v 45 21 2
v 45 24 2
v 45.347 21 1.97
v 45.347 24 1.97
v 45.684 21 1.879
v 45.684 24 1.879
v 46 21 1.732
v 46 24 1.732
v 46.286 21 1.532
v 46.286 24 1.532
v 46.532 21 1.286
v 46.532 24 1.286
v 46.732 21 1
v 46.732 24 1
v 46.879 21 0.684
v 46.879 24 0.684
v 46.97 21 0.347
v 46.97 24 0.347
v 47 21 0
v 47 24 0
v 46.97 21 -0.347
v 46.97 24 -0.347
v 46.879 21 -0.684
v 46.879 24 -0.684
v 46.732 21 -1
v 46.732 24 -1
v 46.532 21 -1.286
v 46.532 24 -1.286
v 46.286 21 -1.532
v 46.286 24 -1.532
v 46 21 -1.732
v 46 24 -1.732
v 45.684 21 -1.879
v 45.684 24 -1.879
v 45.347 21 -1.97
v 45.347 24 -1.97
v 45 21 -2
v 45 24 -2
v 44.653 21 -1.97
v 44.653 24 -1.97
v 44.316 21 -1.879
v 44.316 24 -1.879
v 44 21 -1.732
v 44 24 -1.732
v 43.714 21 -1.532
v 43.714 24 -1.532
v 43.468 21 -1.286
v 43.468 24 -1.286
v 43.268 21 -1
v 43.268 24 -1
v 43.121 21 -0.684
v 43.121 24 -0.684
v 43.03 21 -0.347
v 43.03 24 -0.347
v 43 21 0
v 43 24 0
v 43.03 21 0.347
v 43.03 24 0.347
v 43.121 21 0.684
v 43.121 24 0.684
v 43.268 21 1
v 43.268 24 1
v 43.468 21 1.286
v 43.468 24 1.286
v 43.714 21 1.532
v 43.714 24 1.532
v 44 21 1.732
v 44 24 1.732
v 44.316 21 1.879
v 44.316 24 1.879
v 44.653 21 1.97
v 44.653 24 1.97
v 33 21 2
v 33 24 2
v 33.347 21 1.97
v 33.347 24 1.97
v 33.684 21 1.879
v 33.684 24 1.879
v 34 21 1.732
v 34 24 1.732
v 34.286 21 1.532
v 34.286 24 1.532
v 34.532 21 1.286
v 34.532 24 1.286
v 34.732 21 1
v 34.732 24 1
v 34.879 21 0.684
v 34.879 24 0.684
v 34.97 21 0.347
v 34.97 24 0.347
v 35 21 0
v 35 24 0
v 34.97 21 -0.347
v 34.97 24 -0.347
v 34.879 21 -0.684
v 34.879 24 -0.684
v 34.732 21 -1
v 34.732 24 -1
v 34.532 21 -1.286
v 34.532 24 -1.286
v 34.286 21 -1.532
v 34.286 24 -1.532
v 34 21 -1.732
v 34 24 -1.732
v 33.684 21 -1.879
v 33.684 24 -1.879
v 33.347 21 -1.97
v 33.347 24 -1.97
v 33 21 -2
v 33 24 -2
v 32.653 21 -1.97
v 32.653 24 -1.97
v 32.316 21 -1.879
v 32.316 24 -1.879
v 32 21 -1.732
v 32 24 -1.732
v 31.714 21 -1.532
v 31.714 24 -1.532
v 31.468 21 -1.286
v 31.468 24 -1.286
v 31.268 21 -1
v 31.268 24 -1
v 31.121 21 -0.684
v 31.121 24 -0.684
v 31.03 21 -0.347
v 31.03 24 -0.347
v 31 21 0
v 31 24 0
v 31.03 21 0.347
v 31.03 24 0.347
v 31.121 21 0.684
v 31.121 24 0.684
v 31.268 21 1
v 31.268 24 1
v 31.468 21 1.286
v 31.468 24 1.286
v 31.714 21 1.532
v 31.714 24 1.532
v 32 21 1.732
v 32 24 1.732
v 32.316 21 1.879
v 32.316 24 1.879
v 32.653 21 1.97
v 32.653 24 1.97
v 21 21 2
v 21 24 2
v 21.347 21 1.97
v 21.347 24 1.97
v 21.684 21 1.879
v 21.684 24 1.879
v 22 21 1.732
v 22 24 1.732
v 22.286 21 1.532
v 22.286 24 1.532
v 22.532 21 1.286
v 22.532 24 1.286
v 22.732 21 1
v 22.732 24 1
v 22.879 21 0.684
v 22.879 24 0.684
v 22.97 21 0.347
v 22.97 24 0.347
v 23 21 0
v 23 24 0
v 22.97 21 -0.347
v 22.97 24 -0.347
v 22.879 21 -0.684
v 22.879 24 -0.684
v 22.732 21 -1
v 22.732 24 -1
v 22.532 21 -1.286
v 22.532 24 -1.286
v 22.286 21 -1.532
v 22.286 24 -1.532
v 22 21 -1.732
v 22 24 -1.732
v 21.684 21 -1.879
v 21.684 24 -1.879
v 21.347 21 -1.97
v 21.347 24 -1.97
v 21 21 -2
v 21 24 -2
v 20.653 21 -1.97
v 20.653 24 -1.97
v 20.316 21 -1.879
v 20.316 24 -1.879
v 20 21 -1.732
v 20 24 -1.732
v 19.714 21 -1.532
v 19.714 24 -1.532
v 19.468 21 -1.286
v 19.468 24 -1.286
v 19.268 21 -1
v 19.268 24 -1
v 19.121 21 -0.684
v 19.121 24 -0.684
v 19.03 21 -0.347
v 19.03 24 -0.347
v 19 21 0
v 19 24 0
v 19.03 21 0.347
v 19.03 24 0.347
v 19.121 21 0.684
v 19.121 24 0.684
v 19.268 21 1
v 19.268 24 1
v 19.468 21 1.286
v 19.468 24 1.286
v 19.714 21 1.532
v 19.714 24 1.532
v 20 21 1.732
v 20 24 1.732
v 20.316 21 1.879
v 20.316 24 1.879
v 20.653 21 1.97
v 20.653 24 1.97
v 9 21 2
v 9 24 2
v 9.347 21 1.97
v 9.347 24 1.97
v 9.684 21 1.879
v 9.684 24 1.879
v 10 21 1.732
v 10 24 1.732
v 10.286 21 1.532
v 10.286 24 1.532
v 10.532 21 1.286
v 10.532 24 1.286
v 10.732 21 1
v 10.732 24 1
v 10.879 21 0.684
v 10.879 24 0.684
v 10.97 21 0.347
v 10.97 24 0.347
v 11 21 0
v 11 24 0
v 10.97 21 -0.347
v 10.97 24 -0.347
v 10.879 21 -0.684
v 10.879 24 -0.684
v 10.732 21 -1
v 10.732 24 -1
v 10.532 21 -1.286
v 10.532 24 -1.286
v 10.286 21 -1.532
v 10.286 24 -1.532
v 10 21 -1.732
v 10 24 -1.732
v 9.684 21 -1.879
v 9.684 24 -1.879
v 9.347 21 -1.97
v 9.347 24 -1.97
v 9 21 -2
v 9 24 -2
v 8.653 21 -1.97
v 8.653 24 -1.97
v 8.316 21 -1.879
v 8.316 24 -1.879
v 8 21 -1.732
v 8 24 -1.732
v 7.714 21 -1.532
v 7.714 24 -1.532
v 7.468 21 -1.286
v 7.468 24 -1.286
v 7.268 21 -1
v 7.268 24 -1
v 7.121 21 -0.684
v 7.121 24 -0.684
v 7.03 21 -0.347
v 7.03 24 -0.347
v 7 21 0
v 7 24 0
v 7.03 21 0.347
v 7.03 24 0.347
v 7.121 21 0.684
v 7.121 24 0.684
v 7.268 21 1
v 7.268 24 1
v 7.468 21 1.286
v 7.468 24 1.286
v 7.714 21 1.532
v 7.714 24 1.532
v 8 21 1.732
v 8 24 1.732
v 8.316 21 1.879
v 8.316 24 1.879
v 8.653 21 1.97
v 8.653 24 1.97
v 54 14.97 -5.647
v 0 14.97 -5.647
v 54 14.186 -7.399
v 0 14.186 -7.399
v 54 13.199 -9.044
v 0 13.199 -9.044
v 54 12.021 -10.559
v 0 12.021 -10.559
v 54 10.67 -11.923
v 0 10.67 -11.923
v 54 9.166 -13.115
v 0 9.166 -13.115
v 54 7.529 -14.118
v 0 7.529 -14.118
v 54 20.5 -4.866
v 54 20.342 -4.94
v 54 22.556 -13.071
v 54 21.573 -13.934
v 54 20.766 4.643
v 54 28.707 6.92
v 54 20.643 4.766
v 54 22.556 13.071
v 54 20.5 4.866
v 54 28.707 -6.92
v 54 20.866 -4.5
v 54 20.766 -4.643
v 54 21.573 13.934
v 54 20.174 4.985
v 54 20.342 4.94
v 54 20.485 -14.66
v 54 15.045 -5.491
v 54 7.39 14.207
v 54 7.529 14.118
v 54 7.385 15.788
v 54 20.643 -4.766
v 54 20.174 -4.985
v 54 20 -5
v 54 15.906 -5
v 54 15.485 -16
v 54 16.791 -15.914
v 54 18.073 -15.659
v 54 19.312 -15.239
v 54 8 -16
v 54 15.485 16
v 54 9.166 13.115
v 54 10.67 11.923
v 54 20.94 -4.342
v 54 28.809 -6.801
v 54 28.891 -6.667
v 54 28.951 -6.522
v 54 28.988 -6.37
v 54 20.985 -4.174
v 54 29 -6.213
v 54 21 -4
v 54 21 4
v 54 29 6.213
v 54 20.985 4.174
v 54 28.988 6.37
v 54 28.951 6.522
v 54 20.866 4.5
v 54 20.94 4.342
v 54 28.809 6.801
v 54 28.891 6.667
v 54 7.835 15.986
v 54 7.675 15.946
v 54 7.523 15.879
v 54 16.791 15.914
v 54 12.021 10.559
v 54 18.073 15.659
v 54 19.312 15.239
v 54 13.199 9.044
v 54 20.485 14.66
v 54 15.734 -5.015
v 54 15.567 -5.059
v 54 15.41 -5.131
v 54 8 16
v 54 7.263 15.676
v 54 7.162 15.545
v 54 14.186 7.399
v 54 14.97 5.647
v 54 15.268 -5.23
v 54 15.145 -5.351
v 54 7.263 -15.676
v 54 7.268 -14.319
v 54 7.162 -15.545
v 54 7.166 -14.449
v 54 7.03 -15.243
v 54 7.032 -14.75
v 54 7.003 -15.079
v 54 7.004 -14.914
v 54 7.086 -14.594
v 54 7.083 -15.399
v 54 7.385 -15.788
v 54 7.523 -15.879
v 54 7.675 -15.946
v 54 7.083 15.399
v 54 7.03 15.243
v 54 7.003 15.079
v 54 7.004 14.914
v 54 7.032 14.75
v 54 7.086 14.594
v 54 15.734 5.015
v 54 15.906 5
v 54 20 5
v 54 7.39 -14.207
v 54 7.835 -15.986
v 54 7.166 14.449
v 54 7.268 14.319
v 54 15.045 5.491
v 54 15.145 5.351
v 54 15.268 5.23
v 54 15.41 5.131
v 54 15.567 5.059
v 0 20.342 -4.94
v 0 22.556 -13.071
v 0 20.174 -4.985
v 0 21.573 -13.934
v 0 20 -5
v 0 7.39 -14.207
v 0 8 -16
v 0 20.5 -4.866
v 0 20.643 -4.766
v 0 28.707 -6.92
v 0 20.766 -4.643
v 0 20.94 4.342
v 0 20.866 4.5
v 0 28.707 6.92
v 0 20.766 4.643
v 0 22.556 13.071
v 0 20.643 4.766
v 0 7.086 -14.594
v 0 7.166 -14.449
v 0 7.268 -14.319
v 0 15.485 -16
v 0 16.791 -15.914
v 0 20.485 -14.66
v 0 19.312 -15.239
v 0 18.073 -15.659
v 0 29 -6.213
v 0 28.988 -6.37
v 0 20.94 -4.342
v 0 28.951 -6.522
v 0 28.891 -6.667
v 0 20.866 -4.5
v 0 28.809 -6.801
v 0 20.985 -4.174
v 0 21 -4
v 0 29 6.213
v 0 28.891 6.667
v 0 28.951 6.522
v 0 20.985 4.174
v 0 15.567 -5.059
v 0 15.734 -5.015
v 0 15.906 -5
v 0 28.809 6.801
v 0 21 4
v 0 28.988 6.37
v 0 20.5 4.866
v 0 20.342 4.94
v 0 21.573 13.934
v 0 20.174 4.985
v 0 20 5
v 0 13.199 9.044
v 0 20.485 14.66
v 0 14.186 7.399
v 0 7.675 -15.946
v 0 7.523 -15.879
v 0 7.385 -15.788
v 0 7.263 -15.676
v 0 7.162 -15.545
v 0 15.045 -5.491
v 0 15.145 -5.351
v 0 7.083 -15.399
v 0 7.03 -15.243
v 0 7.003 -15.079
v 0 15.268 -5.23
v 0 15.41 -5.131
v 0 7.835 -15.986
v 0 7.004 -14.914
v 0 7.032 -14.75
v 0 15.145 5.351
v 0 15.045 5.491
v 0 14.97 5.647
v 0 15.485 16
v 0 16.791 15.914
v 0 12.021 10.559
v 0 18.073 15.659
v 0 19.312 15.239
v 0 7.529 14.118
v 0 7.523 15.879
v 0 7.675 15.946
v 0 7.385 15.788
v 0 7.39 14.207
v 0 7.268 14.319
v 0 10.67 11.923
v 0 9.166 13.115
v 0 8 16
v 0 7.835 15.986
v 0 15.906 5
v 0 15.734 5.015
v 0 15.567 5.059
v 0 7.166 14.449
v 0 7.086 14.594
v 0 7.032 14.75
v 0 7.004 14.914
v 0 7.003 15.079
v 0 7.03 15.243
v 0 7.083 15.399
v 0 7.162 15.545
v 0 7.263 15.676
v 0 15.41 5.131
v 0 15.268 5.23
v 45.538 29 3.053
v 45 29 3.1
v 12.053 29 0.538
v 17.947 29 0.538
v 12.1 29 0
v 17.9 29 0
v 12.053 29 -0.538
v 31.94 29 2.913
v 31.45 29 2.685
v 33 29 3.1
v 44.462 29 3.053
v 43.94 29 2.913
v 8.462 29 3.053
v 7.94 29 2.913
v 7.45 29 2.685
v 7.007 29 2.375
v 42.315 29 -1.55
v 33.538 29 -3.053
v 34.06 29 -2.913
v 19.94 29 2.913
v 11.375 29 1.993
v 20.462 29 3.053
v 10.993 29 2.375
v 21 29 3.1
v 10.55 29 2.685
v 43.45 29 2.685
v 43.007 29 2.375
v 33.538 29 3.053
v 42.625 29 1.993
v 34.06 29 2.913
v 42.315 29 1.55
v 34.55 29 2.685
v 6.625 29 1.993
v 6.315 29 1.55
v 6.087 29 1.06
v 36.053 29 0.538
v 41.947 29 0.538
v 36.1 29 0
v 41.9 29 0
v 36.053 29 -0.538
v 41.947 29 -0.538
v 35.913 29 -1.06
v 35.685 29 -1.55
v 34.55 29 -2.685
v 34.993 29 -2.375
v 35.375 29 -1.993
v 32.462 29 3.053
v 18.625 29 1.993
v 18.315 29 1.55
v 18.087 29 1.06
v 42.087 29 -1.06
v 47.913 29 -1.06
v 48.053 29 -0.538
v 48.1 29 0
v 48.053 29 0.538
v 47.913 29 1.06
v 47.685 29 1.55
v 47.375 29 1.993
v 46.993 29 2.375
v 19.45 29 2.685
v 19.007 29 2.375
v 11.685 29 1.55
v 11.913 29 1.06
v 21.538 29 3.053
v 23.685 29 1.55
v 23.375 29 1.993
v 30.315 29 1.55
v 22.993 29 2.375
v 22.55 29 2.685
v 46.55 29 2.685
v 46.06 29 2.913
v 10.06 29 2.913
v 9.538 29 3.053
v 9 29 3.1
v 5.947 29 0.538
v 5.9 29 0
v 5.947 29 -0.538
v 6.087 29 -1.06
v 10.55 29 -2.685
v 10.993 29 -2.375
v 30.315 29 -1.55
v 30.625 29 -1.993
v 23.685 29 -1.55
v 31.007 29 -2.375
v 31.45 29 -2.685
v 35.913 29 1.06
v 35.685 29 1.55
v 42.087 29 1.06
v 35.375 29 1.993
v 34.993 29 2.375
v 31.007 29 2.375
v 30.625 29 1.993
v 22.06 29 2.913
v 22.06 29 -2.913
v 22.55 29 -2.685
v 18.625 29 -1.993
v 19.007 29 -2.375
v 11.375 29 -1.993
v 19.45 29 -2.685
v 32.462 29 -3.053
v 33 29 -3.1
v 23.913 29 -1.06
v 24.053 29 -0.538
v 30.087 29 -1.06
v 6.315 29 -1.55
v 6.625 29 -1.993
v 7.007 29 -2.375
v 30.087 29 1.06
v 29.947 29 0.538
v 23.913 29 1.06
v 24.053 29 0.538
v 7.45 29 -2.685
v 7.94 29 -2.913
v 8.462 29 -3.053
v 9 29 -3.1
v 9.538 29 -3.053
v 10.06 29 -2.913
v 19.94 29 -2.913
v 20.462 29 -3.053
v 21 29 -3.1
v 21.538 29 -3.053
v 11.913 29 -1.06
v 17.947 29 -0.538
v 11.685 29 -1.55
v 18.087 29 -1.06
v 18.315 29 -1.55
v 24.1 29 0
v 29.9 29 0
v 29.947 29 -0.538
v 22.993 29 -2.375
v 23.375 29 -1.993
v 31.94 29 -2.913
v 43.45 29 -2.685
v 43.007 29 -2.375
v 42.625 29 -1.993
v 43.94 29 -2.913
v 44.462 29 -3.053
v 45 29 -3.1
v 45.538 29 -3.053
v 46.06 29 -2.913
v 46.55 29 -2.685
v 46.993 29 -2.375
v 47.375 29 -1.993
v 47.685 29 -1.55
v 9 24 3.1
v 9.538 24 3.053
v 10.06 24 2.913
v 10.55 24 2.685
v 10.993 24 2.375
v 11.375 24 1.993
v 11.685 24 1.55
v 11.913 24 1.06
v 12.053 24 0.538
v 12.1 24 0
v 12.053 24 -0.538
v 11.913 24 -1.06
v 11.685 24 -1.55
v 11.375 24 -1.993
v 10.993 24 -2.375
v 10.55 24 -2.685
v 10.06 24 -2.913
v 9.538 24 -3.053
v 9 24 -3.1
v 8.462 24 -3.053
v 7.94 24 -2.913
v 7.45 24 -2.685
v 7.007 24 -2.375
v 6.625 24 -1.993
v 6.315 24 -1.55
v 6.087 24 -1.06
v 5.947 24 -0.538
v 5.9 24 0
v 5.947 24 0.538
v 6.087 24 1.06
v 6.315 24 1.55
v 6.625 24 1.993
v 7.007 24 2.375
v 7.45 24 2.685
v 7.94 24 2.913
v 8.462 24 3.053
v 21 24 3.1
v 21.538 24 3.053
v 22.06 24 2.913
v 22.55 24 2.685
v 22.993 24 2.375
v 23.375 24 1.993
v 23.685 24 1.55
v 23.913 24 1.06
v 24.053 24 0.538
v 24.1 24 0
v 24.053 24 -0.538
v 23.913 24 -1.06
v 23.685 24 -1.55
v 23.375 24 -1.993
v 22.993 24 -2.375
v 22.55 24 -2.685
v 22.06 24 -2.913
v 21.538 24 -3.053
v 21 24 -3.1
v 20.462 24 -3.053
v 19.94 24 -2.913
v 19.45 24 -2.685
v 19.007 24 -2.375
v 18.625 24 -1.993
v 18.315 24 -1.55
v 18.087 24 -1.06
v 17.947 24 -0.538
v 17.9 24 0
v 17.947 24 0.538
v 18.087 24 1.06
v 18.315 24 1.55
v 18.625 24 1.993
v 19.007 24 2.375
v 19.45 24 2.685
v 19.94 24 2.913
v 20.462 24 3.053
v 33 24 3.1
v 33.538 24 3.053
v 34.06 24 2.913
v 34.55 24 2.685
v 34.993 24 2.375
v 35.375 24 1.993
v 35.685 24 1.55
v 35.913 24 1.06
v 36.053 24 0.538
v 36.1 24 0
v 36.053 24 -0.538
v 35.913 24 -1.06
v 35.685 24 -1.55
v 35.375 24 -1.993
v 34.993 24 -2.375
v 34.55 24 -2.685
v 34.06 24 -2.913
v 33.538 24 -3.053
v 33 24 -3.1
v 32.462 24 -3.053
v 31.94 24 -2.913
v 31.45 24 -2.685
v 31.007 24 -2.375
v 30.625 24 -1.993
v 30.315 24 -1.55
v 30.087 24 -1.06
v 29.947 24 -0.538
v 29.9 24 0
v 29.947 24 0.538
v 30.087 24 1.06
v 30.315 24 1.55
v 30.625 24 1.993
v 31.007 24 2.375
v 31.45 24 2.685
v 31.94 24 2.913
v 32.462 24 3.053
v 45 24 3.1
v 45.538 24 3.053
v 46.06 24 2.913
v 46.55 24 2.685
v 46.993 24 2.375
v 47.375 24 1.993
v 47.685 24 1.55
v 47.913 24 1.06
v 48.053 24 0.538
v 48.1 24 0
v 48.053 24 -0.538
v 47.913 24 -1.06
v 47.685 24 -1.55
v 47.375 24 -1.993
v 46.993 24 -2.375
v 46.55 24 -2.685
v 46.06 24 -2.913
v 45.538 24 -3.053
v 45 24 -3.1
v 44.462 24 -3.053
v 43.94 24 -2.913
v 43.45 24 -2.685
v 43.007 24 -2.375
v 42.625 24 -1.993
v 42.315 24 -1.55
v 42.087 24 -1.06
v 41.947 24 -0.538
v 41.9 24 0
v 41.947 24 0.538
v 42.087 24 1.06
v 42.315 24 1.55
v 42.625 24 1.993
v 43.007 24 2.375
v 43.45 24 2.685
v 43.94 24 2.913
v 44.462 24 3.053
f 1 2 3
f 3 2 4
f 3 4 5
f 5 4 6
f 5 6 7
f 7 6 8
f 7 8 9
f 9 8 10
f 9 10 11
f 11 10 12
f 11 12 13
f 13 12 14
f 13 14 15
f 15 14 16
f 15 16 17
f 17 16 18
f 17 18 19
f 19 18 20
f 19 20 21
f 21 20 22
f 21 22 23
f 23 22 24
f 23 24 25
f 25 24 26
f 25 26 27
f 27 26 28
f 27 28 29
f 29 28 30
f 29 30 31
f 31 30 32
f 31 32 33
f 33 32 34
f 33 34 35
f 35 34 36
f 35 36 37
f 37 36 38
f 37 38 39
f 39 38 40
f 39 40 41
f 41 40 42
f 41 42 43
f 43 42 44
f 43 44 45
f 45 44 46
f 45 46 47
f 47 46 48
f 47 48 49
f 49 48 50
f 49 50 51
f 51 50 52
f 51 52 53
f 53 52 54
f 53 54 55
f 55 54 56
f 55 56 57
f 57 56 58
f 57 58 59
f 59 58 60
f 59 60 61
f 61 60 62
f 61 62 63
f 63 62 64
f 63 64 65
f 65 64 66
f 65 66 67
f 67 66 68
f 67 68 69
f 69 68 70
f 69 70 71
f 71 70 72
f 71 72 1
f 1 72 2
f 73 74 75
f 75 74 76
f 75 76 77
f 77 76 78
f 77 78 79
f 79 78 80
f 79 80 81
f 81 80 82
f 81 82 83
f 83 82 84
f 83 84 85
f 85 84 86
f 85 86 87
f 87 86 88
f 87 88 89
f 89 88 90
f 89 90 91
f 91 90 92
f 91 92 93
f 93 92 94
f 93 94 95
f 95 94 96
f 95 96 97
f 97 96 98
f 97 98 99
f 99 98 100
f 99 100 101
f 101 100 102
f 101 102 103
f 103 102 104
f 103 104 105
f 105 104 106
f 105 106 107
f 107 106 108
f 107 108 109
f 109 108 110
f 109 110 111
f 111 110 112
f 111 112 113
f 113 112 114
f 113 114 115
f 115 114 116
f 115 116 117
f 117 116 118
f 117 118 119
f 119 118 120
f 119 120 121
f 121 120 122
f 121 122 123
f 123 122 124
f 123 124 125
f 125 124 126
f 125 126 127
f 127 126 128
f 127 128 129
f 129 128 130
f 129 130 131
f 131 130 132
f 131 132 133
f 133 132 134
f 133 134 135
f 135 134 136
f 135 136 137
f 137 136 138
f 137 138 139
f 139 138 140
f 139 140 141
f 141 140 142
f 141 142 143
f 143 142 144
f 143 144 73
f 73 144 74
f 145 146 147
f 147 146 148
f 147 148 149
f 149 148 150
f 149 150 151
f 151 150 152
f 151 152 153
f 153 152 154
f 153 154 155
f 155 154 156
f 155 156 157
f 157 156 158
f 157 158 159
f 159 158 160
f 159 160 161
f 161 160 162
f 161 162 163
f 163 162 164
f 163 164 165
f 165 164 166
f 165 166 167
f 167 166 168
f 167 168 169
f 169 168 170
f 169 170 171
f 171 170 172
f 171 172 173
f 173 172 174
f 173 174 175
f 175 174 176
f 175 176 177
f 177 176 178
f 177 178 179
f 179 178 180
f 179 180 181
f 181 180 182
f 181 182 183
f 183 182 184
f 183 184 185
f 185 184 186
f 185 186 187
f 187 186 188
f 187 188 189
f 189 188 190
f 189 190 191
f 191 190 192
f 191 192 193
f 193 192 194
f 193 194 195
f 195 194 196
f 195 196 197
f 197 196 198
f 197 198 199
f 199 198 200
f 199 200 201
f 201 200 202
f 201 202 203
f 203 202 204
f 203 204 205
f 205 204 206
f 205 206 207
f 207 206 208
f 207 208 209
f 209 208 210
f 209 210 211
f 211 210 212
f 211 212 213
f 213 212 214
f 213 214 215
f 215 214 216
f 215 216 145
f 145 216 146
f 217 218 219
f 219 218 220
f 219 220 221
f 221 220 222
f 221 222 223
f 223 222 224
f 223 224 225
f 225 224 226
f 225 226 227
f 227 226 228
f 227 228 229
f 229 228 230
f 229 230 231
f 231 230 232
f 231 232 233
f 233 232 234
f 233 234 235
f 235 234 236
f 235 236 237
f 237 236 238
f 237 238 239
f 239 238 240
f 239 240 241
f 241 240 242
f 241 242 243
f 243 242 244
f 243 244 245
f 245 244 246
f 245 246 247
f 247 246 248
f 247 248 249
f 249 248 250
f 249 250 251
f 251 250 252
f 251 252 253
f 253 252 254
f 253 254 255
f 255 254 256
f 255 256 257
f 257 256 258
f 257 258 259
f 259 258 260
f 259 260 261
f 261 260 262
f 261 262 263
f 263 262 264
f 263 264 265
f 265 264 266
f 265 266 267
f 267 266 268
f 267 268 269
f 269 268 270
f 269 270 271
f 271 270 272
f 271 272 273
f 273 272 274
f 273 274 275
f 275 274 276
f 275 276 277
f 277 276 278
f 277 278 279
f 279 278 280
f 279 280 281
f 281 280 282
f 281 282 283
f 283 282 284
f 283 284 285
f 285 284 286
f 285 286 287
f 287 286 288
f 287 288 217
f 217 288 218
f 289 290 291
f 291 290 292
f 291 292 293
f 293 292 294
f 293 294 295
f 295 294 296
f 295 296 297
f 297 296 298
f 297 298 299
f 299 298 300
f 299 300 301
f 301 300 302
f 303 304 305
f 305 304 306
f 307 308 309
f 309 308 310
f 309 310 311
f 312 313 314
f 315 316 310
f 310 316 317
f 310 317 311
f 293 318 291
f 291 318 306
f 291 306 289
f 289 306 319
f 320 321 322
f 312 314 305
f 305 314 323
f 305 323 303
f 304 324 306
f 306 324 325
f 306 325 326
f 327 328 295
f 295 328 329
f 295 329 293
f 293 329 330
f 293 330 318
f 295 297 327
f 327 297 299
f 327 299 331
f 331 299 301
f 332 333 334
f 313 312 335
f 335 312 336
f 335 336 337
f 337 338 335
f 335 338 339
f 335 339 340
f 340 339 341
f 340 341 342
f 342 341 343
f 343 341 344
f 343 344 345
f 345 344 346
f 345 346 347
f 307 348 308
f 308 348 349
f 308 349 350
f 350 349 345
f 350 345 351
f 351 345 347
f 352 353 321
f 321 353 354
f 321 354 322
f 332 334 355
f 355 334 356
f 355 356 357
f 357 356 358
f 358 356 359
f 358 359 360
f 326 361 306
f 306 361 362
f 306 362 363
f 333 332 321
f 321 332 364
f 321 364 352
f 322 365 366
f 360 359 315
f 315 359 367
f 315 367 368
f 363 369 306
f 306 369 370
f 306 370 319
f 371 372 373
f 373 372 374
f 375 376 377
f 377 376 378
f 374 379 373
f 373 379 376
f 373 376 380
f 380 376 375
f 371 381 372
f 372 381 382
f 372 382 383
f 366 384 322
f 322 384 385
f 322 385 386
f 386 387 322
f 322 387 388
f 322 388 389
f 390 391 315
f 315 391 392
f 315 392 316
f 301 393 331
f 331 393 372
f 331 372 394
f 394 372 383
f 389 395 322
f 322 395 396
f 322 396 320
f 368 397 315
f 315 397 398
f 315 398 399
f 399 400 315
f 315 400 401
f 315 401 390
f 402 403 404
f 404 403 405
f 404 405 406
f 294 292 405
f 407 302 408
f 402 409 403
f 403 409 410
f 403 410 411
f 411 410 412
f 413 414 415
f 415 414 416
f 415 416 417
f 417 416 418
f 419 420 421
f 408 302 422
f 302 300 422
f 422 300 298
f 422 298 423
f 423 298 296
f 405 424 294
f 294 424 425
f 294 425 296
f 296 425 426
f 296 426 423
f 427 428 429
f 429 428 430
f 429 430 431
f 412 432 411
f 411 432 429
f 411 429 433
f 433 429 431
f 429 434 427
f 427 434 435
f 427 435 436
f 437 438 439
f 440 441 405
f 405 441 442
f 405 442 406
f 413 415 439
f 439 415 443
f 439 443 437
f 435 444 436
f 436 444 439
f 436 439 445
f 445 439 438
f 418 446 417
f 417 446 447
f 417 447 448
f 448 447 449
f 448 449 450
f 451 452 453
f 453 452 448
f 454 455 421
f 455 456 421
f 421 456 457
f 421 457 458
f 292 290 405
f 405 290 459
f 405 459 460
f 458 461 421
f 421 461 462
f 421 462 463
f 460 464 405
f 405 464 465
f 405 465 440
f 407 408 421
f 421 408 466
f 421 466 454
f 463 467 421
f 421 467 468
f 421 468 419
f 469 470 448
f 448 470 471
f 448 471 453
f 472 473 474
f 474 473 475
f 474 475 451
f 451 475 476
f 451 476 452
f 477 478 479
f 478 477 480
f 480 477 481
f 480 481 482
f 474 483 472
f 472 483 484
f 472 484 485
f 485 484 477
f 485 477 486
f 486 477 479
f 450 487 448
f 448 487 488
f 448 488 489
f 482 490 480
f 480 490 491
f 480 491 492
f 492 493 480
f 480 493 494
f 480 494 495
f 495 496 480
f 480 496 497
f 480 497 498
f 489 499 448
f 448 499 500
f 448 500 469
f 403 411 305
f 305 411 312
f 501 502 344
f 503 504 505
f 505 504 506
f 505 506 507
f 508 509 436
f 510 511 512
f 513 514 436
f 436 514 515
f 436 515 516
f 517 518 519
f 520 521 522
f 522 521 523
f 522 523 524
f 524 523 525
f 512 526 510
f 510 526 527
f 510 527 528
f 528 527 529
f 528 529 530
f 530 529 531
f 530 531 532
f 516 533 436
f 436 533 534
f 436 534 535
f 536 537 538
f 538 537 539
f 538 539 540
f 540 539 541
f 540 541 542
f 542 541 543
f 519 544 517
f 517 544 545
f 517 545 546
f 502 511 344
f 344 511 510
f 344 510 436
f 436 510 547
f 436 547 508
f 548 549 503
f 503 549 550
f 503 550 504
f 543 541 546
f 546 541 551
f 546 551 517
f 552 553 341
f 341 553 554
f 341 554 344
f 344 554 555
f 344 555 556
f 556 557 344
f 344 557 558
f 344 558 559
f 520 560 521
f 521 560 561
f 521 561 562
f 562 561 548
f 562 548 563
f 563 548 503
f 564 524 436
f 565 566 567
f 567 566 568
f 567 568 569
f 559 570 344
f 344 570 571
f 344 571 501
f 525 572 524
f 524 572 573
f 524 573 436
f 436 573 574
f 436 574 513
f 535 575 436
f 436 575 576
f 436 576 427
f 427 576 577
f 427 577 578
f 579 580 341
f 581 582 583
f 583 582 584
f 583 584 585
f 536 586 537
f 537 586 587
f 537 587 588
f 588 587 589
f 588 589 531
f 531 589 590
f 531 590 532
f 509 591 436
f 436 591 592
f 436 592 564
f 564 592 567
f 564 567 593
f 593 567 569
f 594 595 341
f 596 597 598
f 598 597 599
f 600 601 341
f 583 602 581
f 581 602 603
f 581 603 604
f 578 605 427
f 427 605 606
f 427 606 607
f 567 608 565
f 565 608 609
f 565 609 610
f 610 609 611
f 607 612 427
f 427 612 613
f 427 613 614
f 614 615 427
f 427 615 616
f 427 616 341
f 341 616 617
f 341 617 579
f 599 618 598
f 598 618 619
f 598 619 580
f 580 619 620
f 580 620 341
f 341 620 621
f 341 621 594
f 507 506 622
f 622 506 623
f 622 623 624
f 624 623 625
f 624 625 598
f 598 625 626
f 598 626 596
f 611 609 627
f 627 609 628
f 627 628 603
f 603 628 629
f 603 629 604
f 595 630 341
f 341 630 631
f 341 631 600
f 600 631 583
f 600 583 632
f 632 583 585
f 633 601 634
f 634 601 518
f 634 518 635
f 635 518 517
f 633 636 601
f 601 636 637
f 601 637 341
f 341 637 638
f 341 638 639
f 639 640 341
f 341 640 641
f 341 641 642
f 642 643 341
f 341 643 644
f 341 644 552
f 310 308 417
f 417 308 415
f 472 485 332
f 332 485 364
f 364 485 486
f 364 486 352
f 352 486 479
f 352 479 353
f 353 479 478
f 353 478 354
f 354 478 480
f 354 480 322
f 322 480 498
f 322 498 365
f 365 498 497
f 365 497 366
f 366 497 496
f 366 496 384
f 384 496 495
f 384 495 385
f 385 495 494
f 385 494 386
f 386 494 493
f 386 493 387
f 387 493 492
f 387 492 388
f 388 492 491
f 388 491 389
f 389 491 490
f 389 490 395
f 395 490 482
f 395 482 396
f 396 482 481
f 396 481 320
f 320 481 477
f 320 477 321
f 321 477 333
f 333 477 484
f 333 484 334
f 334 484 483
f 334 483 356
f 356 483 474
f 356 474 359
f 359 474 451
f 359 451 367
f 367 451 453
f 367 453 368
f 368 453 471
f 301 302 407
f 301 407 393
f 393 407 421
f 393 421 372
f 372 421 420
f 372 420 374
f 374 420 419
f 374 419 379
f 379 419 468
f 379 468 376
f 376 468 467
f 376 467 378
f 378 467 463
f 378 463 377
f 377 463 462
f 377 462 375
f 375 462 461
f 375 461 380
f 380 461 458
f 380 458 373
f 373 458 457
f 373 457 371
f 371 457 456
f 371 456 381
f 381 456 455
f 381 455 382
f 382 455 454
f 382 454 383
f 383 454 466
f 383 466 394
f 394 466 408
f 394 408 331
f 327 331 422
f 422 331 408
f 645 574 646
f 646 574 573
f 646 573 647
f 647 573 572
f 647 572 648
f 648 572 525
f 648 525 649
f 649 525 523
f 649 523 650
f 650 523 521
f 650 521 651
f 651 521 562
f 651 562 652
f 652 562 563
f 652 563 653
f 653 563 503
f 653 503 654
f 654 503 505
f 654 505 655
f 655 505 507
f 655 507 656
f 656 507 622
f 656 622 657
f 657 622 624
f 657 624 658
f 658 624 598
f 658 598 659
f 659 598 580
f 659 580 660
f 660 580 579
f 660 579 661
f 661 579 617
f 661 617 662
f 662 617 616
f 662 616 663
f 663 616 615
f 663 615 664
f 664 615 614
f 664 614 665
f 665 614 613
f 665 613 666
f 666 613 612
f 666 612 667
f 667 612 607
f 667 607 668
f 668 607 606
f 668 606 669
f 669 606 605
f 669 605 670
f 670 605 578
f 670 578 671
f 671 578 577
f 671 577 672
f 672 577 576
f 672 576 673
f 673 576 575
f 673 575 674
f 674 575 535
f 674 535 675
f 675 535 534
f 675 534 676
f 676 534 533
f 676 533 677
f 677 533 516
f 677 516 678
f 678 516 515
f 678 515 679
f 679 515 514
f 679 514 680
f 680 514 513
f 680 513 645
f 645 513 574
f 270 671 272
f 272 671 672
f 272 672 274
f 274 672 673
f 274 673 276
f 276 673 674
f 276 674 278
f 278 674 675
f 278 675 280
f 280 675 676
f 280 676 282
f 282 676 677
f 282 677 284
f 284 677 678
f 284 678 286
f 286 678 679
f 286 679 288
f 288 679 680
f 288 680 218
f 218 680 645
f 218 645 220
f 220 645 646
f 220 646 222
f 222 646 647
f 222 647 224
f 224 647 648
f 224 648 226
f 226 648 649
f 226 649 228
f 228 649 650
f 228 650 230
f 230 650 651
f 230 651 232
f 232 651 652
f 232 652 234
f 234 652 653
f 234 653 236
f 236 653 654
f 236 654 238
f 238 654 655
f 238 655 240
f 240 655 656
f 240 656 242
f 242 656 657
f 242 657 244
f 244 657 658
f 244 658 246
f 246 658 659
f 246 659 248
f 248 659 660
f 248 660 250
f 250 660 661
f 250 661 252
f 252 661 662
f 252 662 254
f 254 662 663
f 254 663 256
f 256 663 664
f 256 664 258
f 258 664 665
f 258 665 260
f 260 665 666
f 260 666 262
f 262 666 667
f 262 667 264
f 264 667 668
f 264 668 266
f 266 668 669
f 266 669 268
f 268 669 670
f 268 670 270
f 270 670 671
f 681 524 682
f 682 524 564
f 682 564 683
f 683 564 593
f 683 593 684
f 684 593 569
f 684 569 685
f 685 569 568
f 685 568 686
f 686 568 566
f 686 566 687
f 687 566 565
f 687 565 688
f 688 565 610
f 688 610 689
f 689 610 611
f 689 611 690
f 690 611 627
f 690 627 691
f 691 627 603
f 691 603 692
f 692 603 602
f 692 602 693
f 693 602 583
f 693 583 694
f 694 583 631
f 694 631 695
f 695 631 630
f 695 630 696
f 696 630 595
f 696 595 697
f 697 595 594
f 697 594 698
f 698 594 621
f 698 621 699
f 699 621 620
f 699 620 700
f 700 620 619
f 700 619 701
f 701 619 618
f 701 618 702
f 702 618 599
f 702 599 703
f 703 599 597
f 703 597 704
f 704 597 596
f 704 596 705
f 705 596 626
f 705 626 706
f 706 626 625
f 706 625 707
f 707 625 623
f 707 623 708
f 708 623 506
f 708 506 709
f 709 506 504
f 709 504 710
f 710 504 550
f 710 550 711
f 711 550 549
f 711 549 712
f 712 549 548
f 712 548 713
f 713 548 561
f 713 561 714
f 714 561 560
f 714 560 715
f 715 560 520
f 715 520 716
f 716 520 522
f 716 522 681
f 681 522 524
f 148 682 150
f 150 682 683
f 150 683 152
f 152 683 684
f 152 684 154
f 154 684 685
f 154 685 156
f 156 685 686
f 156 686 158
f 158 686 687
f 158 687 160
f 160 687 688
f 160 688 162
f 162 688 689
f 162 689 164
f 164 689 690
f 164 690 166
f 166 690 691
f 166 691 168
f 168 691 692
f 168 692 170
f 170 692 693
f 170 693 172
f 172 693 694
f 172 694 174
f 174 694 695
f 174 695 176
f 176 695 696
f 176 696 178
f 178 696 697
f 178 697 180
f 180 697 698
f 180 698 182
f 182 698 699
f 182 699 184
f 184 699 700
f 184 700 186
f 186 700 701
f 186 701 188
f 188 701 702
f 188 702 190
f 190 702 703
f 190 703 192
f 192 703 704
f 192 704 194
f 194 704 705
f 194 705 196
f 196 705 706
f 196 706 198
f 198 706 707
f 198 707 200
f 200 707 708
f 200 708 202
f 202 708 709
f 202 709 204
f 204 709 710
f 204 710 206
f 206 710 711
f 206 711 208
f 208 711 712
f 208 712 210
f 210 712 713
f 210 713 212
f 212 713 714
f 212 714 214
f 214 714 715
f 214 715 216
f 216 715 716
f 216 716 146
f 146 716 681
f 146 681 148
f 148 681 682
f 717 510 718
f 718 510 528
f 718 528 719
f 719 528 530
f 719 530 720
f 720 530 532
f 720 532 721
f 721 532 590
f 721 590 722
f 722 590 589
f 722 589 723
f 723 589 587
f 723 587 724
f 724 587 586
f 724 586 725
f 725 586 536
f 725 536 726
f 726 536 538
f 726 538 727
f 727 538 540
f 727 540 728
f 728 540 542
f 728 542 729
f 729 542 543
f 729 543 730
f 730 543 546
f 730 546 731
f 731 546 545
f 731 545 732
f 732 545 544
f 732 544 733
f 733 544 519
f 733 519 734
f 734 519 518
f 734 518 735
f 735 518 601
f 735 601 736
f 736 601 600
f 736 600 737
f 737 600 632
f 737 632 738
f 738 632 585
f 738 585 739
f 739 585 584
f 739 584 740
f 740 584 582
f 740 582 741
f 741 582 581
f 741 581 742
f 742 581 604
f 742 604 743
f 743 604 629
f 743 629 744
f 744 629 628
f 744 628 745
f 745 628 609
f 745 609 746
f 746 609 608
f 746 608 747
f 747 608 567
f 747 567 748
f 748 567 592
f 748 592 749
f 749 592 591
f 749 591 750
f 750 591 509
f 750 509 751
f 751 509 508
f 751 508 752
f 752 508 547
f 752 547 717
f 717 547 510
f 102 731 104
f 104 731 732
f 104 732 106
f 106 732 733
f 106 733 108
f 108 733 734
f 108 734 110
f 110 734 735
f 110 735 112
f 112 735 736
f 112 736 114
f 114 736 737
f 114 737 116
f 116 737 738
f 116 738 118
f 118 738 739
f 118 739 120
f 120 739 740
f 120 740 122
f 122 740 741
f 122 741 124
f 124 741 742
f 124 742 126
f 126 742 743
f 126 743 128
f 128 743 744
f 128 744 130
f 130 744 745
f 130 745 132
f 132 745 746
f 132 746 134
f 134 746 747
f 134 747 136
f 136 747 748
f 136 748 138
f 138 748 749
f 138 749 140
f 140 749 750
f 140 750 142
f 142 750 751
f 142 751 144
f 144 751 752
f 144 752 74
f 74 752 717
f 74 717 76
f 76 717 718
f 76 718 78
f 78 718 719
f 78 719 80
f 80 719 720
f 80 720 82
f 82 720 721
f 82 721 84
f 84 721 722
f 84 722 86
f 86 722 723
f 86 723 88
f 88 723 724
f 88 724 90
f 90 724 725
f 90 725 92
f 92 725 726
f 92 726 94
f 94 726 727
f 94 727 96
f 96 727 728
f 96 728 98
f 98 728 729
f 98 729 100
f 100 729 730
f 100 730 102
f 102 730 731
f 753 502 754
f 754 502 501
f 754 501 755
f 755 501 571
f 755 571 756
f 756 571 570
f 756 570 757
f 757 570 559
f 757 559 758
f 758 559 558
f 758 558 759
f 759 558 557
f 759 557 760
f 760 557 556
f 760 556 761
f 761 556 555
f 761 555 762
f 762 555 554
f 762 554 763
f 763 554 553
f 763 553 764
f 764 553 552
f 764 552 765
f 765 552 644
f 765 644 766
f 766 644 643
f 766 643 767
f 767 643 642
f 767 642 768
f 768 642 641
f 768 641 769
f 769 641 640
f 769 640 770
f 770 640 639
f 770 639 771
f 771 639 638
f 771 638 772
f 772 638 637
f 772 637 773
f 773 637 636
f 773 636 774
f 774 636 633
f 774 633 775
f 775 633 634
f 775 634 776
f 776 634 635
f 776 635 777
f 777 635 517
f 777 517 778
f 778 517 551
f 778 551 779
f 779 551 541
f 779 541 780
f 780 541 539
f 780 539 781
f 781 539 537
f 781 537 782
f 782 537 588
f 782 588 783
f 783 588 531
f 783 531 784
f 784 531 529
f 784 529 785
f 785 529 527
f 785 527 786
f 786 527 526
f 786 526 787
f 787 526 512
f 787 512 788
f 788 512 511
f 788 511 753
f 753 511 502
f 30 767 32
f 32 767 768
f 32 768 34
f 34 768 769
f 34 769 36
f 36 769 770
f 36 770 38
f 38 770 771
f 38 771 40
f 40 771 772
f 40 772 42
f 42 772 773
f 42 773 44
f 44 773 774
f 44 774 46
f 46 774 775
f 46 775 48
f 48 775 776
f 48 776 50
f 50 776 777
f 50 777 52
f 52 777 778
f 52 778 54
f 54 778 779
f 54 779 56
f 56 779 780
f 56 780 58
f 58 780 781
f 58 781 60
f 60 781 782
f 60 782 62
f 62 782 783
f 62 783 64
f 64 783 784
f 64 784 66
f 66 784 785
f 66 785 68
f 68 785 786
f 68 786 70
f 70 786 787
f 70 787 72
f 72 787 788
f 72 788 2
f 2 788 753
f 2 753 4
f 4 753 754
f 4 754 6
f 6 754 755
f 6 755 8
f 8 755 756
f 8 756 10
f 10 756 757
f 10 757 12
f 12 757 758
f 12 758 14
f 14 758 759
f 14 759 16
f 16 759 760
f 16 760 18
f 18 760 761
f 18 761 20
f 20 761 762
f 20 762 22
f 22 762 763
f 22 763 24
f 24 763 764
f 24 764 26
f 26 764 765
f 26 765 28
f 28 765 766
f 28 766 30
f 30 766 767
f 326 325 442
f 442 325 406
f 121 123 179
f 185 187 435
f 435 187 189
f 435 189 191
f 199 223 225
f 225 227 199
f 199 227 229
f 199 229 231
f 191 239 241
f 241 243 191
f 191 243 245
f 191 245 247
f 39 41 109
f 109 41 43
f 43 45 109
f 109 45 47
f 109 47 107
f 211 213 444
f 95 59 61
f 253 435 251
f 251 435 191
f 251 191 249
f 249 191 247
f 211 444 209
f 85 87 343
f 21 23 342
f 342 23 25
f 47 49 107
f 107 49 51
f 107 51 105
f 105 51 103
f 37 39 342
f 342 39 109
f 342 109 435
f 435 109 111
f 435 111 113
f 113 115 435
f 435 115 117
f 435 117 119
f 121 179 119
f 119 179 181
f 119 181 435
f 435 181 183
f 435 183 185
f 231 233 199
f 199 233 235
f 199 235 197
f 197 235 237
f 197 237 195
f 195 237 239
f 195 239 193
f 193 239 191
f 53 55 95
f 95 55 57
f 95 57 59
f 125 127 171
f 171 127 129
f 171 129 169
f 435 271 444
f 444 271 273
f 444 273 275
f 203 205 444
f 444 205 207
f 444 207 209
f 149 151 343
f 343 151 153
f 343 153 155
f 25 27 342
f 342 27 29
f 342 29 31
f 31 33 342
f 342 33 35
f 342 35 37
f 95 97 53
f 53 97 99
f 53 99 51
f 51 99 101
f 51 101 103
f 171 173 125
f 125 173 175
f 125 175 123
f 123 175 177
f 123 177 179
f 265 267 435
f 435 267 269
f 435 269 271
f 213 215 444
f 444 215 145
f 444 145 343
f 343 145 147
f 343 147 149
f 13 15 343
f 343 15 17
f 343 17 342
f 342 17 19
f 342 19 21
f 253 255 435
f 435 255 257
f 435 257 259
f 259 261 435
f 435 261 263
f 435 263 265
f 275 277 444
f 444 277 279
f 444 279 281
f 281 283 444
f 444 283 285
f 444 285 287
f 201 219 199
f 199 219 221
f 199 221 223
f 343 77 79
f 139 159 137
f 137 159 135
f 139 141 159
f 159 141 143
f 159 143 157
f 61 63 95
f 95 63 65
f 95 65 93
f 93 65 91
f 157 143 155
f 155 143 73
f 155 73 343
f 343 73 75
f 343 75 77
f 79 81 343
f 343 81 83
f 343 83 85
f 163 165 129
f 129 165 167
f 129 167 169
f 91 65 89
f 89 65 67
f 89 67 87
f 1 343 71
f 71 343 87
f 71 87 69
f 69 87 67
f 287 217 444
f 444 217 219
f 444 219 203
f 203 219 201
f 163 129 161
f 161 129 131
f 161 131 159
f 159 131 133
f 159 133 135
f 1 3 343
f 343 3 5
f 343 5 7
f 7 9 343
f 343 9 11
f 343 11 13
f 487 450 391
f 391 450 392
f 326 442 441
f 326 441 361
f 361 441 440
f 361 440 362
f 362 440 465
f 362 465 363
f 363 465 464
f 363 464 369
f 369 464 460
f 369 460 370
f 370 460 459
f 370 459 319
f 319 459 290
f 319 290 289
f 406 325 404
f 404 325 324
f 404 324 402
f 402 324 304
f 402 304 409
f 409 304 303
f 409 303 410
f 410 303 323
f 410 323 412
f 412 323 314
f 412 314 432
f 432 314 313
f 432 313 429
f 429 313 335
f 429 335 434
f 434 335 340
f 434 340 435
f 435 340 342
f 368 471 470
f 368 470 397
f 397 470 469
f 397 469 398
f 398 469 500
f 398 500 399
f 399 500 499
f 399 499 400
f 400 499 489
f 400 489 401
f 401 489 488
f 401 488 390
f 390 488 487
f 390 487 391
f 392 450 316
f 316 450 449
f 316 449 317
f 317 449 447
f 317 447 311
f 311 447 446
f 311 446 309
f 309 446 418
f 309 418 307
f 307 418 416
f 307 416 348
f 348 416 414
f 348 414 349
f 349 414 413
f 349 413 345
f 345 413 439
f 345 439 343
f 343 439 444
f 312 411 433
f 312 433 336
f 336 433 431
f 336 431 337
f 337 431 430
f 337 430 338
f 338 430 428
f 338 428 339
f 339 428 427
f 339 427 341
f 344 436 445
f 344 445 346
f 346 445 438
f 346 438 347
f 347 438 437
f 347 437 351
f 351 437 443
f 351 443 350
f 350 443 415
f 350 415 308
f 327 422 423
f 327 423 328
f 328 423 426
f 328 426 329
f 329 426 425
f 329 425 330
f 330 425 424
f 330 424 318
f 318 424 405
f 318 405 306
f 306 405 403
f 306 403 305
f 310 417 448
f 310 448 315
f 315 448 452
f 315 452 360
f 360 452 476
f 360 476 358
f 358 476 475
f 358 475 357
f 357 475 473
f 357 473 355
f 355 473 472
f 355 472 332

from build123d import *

# Parameters (mm, degrees)
BOSS_EXTRUDE1_DEPTH     = 54
CUT_EXTRUDE1_DEPTH      = 61.464865831
CUT_EXTRUDE1_DEPTH_BACK = 61.464865831
SKETCH2_R               = 2
SKETCH2_4_R             = 3.1
SKETCH2_4_R_2           = 2
CUT_EXTRUDE2_DEPTH      = 5
CUT_EXTRUDE7_DEPTH      = 64.348243944
CUT_EXTRUDE7_DEPTH_BACK = 64.348243944
FILLET1_R               = 1
FILLET2_R               = 10


with BuildPart() as part:
    # Sketch1 → Boss-Extrude1 (new body)
    with BuildSketch(Plane(origin=(0, 0, 0), x_dir=(0, 0, -1), z_dir=(1, 0, 0))):
        with BuildLine():
            Line((16, 8), (16, 19.627416998))
            Line((16, 19.627416998), (6.627416998, 29))
            Line((6.627416998, 29), (-6.627416998, 29))
            Line((-6.627416998, 29), (-16, 19.627416998))
            Line((-16, 19.627416998), (-16, 8))
            ThreePointArc((-16, 8), (-15.242535625, 7.0298575), (-14.117647059, 7.529411765))
            ThreePointArc((-14.117647059, 7.529411765), (0, 16), (14.117647059, 7.529411765))
            ThreePointArc((14.117647059, 7.529411765), (15.242535625, 7.0298575), (16, 8))
        make_face()
    extrude(amount=BOSS_EXTRUDE1_DEPTH)

    # Sketch2 → Cut-Extrude1 (cut, two sides: drawn at the far end of the back side and taken through both)
    with BuildSketch(Plane(origin=(0, 29, 0), x_dir=(1, 0, 0), z_dir=(0, 1, 0)).offset(-CUT_EXTRUDE1_DEPTH_BACK)):
        with Locations((9, 0)):
            Circle(SKETCH2_R)
        with Locations((21, 0)):
            Circle(SKETCH2_R)
        with Locations((33, 0)):
            Circle(SKETCH2_R)
        with Locations((45, 0)):
            Circle(SKETCH2_R)
    extrude(amount=CUT_EXTRUDE1_DEPTH + CUT_EXTRUDE1_DEPTH_BACK, mode=Mode.SUBTRACT)

    # Sketch2<4> → Cut-Extrude2 (cut)
    # profile 1 of 4: a face of its own
    with BuildSketch(Plane(origin=(0, 29, 0), x_dir=(1, 0, 0), z_dir=(0, 1, 0))):
        with Locations((9, 0)):
            Circle(SKETCH2_4_R)
        with Locations((9, 0)):
            Circle(SKETCH2_4_R_2, mode=Mode.SUBTRACT)
    # profile 2 of 4: a face of its own
    with BuildSketch(Plane(origin=(0, 29, 0), x_dir=(1, 0, 0), z_dir=(0, 1, 0))):
        with Locations((21, 0)):
            Circle(SKETCH2_4_R)
        with Locations((21, 0)):
            Circle(SKETCH2_4_R_2, mode=Mode.SUBTRACT)
    # profile 3 of 4: a face of its own
    with BuildSketch(Plane(origin=(0, 29, 0), x_dir=(1, 0, 0), z_dir=(0, 1, 0))):
        with Locations((33, 0)):
            Circle(SKETCH2_4_R)
        with Locations((33, 0)):
            Circle(SKETCH2_4_R_2, mode=Mode.SUBTRACT)
    # profile 4 of 4: a face of its own
    with BuildSketch(Plane(origin=(0, 29, 0), x_dir=(1, 0, 0), z_dir=(0, 1, 0))):
        with Locations((45, 0)):
            Circle(SKETCH2_4_R)
        with Locations((45, 0)):
            Circle(SKETCH2_4_R_2, mode=Mode.SUBTRACT)
    extrude(amount=-CUT_EXTRUDE2_DEPTH, mode=Mode.SUBTRACT)

    # Sketch4 → Cut-Extrude7 (cut, two sides: drawn at the far end of the back side and taken through both)
    with BuildSketch(Plane.ZY.offset(-CUT_EXTRUDE7_DEPTH_BACK)):
        with BuildLine():
            Line((-5, 21), (-5, 15.198684154))
            ThreePointArc((-5, 15.198684154), (0, 16), (5, 15.198684154))
            Line((5, 15.198684154), (5, 21))
            Line((5, 21), (-5, 21))
        make_face()
    extrude(amount=CUT_EXTRUDE7_DEPTH + CUT_EXTRUDE7_DEPTH_BACK, mode=Mode.SUBTRACT)

    # Fillet1
    fillet1_edges = [part.edges().sort_by_distance(p)[0] for p in [
        (27, 15.198684154, -5),
        (27, 21, -5),
        (27, 15.198684154, 5),
        (27, 21, 5),
        (27, 29, -6.627416998),
        (27, 29, 6.627416998),
    ]]
    fillet(fillet1_edges, radius=FILLET1_R)

    # Fillet2
    fillet2_edges = [part.edges().sort_by_distance(p)[0] for p in [
        (27, 19.627416998, -16),
        (27, 19.627416998, 16),
    ]]
    fillet(fillet2_edges, radius=FILLET2_R)


solid = part.part
